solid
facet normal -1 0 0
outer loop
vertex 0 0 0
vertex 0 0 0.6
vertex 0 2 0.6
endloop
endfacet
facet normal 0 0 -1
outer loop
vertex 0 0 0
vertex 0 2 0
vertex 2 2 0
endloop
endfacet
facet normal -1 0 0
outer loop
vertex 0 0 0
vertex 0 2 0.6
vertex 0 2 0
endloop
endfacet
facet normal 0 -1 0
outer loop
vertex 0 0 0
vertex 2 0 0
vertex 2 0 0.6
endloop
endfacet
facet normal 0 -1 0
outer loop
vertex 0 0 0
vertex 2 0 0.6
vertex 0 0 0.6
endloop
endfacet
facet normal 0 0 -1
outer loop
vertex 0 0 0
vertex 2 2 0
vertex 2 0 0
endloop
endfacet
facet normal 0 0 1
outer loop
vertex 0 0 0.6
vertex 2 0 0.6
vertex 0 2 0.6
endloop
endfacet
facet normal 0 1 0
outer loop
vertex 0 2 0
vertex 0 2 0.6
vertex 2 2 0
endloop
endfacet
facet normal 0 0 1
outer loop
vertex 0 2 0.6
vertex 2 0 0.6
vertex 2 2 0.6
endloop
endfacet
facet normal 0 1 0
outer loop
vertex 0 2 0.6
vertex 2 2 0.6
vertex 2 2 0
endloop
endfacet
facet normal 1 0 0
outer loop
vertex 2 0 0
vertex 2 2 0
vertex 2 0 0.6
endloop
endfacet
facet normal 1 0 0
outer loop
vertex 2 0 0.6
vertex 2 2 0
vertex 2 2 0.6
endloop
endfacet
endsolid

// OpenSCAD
/* Warning, this is a very basic generator with a lot of approximation 
input data : [UDFN, HLA, 2x2x0.6mm, 6, , A, C04-01265A]
generated by com.zoubworld.electronics.cad.model3d.Basic
Date : Sun Feb 15 10:50:49 CET 2026
*/

//body
color("black")
translate([0,0,0])
cube([2.0,2.0,0.6], center=false);
